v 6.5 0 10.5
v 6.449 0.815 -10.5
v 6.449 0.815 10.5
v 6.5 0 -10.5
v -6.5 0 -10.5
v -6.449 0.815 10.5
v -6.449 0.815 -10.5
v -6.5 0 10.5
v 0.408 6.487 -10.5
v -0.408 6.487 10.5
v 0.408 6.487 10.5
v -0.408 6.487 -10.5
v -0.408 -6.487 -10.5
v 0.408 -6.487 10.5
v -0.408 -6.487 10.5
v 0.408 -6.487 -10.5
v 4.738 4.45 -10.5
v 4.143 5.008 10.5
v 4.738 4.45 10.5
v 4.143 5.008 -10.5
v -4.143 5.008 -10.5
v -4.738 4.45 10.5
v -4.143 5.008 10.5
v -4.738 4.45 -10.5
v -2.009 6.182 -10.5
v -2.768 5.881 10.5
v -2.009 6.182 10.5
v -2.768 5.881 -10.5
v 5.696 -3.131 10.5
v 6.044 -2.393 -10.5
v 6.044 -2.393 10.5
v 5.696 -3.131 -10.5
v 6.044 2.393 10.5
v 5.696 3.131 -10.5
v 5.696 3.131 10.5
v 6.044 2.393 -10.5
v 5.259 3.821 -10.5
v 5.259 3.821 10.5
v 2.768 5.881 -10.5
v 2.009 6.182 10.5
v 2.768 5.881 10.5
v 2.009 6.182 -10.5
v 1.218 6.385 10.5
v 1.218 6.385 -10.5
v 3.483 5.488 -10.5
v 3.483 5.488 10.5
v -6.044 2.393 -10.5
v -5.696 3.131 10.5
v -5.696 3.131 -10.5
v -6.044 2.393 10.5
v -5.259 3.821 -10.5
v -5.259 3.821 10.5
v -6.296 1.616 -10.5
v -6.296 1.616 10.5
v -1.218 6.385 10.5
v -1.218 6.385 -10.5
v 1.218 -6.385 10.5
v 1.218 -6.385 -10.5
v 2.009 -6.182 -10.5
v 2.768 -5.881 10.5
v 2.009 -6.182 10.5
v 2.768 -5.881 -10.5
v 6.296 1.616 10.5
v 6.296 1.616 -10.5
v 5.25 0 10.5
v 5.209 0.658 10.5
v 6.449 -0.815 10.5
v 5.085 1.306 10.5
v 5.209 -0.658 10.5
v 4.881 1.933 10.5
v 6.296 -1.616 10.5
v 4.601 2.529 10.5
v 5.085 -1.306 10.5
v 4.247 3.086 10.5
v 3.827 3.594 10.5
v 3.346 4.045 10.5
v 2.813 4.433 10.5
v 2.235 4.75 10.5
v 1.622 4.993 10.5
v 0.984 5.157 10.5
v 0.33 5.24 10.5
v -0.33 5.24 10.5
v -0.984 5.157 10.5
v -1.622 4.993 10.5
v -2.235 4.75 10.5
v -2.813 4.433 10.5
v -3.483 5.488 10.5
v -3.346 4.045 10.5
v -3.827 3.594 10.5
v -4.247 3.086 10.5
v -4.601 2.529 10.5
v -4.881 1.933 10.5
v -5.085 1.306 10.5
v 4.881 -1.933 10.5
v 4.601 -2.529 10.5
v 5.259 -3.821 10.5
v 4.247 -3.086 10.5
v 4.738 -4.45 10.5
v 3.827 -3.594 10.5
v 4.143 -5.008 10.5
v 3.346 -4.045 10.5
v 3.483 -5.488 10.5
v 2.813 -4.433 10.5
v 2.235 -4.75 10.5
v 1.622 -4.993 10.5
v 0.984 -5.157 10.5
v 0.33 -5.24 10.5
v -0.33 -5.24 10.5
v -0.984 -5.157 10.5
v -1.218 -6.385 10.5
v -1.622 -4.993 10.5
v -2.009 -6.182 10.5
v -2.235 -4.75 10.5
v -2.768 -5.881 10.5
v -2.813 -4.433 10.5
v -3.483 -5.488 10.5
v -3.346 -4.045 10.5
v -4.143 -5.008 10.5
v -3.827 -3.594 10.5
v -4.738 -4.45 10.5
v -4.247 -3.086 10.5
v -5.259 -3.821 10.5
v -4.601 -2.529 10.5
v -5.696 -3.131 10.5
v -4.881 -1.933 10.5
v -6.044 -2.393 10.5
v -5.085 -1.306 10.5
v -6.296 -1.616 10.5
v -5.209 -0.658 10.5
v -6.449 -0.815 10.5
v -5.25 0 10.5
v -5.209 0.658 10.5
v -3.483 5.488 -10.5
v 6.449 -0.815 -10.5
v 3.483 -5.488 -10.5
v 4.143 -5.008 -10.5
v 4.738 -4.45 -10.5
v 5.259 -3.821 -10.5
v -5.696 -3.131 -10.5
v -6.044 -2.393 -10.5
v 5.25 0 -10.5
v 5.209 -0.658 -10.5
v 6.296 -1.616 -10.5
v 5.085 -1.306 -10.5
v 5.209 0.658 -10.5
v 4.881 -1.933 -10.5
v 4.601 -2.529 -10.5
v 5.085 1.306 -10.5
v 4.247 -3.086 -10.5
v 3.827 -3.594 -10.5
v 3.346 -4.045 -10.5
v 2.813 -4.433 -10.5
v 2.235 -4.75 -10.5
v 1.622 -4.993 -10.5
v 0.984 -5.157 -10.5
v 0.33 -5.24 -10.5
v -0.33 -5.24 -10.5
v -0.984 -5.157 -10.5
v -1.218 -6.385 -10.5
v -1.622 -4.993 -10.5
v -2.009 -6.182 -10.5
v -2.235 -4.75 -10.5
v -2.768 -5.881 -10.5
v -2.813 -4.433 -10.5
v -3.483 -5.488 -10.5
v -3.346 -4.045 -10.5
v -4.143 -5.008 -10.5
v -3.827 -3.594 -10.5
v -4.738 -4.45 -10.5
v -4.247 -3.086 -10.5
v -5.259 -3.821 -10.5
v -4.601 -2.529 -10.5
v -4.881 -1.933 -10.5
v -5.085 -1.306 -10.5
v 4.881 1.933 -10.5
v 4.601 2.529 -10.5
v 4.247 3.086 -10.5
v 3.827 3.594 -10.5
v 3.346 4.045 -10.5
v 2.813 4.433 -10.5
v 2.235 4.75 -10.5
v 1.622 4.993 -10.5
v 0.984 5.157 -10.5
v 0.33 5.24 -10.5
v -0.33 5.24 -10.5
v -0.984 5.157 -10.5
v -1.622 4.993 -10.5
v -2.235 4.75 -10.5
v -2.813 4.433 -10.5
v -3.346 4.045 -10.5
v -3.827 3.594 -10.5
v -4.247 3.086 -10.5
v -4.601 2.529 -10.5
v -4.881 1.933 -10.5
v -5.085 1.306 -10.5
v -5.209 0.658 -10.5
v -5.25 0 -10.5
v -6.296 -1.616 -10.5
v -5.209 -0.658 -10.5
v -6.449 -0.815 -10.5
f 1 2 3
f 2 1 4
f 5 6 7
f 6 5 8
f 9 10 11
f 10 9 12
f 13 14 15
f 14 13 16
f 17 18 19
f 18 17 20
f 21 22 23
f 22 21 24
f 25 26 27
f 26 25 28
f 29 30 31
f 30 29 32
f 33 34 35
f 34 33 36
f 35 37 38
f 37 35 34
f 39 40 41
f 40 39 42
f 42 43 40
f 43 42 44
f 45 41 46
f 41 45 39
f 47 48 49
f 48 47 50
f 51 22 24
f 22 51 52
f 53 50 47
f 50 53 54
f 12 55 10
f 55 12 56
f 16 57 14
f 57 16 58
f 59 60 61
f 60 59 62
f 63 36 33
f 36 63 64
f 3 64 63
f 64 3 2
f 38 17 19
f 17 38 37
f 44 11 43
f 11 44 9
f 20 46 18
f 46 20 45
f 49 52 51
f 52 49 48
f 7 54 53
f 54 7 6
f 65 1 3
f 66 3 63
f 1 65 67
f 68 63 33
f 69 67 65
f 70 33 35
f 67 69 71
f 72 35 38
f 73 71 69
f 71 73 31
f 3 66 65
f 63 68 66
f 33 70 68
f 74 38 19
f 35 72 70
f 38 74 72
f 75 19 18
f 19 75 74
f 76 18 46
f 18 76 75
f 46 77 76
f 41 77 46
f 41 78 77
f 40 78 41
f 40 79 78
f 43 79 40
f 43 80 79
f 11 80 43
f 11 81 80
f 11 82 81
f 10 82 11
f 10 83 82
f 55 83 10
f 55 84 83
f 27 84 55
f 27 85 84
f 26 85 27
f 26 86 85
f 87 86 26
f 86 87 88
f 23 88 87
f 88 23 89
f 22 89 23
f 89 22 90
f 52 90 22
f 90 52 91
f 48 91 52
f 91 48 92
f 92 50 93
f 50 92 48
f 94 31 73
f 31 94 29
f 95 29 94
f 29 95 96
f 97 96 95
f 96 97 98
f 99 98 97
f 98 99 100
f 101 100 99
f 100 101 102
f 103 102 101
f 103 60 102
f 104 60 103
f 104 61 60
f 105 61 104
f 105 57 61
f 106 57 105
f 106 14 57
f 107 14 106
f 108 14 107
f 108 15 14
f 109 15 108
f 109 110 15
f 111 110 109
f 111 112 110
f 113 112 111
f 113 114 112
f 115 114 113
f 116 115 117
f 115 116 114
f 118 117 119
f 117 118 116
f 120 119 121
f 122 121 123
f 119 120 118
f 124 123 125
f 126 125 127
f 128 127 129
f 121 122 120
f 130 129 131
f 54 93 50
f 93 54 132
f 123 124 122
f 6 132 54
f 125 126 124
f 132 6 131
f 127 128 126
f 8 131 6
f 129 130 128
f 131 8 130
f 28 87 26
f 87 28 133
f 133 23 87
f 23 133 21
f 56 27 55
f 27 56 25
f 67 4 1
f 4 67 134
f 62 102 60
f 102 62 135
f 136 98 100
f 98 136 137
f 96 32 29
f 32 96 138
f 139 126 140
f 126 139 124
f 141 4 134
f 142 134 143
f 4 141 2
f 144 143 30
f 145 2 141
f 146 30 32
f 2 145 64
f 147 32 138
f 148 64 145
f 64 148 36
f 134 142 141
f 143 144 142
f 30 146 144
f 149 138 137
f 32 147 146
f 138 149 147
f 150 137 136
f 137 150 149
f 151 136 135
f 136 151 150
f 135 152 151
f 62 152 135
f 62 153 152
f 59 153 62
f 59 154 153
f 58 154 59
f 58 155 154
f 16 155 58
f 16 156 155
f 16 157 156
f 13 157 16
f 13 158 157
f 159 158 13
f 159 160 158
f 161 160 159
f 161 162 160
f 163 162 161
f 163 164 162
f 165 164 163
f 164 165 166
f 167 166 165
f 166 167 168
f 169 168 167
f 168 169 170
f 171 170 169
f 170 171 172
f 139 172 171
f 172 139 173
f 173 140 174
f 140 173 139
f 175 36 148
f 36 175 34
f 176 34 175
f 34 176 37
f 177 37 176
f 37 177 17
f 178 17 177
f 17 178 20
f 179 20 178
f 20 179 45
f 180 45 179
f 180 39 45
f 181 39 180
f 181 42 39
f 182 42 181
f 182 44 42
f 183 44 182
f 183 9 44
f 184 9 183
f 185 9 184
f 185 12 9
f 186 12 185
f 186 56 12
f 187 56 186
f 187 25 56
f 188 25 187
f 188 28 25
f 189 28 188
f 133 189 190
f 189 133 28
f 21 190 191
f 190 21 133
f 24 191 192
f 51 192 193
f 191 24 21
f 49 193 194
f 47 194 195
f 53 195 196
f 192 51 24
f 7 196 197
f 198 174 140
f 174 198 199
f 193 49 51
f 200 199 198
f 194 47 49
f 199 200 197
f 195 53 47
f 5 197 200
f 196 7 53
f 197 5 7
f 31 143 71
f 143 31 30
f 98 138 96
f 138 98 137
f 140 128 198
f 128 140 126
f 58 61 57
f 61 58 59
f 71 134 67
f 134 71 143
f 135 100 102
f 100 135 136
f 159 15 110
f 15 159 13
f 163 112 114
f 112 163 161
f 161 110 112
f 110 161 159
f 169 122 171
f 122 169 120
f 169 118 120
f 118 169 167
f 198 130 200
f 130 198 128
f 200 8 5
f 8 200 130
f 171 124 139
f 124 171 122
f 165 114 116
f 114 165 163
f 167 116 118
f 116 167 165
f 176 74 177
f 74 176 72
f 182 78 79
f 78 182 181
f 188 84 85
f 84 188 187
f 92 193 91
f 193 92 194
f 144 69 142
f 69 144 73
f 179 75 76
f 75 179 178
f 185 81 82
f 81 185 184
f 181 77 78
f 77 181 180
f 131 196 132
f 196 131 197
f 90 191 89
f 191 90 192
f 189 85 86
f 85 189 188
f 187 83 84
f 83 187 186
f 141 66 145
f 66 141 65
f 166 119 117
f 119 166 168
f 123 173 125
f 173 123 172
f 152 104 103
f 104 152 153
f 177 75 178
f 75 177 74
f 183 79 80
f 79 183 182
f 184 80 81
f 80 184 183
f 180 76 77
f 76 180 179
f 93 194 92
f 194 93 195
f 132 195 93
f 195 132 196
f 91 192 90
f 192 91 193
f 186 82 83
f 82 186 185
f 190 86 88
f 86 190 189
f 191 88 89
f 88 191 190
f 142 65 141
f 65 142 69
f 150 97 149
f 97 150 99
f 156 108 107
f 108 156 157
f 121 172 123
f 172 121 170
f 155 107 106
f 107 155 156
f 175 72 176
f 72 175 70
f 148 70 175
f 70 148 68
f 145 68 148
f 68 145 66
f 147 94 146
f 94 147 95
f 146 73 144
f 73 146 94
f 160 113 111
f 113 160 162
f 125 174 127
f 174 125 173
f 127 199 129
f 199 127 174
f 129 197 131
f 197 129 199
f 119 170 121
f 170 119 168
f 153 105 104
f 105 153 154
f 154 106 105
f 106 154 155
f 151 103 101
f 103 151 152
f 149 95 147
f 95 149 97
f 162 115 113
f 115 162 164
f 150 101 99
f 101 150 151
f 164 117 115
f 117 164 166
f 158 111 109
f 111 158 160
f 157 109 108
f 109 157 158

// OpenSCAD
$fn = 50;


difference() {
	union() {
		translate(v = [0, 0, -10.5000000000]) {
			cylinder(h = 21, r = 6.5000000000);
		}
	}
	union() {
		translate(v = [0, 0, -100.0000000000]) {
			cylinder(h = 200, r = 5.2500000000);
		}
	}
}
